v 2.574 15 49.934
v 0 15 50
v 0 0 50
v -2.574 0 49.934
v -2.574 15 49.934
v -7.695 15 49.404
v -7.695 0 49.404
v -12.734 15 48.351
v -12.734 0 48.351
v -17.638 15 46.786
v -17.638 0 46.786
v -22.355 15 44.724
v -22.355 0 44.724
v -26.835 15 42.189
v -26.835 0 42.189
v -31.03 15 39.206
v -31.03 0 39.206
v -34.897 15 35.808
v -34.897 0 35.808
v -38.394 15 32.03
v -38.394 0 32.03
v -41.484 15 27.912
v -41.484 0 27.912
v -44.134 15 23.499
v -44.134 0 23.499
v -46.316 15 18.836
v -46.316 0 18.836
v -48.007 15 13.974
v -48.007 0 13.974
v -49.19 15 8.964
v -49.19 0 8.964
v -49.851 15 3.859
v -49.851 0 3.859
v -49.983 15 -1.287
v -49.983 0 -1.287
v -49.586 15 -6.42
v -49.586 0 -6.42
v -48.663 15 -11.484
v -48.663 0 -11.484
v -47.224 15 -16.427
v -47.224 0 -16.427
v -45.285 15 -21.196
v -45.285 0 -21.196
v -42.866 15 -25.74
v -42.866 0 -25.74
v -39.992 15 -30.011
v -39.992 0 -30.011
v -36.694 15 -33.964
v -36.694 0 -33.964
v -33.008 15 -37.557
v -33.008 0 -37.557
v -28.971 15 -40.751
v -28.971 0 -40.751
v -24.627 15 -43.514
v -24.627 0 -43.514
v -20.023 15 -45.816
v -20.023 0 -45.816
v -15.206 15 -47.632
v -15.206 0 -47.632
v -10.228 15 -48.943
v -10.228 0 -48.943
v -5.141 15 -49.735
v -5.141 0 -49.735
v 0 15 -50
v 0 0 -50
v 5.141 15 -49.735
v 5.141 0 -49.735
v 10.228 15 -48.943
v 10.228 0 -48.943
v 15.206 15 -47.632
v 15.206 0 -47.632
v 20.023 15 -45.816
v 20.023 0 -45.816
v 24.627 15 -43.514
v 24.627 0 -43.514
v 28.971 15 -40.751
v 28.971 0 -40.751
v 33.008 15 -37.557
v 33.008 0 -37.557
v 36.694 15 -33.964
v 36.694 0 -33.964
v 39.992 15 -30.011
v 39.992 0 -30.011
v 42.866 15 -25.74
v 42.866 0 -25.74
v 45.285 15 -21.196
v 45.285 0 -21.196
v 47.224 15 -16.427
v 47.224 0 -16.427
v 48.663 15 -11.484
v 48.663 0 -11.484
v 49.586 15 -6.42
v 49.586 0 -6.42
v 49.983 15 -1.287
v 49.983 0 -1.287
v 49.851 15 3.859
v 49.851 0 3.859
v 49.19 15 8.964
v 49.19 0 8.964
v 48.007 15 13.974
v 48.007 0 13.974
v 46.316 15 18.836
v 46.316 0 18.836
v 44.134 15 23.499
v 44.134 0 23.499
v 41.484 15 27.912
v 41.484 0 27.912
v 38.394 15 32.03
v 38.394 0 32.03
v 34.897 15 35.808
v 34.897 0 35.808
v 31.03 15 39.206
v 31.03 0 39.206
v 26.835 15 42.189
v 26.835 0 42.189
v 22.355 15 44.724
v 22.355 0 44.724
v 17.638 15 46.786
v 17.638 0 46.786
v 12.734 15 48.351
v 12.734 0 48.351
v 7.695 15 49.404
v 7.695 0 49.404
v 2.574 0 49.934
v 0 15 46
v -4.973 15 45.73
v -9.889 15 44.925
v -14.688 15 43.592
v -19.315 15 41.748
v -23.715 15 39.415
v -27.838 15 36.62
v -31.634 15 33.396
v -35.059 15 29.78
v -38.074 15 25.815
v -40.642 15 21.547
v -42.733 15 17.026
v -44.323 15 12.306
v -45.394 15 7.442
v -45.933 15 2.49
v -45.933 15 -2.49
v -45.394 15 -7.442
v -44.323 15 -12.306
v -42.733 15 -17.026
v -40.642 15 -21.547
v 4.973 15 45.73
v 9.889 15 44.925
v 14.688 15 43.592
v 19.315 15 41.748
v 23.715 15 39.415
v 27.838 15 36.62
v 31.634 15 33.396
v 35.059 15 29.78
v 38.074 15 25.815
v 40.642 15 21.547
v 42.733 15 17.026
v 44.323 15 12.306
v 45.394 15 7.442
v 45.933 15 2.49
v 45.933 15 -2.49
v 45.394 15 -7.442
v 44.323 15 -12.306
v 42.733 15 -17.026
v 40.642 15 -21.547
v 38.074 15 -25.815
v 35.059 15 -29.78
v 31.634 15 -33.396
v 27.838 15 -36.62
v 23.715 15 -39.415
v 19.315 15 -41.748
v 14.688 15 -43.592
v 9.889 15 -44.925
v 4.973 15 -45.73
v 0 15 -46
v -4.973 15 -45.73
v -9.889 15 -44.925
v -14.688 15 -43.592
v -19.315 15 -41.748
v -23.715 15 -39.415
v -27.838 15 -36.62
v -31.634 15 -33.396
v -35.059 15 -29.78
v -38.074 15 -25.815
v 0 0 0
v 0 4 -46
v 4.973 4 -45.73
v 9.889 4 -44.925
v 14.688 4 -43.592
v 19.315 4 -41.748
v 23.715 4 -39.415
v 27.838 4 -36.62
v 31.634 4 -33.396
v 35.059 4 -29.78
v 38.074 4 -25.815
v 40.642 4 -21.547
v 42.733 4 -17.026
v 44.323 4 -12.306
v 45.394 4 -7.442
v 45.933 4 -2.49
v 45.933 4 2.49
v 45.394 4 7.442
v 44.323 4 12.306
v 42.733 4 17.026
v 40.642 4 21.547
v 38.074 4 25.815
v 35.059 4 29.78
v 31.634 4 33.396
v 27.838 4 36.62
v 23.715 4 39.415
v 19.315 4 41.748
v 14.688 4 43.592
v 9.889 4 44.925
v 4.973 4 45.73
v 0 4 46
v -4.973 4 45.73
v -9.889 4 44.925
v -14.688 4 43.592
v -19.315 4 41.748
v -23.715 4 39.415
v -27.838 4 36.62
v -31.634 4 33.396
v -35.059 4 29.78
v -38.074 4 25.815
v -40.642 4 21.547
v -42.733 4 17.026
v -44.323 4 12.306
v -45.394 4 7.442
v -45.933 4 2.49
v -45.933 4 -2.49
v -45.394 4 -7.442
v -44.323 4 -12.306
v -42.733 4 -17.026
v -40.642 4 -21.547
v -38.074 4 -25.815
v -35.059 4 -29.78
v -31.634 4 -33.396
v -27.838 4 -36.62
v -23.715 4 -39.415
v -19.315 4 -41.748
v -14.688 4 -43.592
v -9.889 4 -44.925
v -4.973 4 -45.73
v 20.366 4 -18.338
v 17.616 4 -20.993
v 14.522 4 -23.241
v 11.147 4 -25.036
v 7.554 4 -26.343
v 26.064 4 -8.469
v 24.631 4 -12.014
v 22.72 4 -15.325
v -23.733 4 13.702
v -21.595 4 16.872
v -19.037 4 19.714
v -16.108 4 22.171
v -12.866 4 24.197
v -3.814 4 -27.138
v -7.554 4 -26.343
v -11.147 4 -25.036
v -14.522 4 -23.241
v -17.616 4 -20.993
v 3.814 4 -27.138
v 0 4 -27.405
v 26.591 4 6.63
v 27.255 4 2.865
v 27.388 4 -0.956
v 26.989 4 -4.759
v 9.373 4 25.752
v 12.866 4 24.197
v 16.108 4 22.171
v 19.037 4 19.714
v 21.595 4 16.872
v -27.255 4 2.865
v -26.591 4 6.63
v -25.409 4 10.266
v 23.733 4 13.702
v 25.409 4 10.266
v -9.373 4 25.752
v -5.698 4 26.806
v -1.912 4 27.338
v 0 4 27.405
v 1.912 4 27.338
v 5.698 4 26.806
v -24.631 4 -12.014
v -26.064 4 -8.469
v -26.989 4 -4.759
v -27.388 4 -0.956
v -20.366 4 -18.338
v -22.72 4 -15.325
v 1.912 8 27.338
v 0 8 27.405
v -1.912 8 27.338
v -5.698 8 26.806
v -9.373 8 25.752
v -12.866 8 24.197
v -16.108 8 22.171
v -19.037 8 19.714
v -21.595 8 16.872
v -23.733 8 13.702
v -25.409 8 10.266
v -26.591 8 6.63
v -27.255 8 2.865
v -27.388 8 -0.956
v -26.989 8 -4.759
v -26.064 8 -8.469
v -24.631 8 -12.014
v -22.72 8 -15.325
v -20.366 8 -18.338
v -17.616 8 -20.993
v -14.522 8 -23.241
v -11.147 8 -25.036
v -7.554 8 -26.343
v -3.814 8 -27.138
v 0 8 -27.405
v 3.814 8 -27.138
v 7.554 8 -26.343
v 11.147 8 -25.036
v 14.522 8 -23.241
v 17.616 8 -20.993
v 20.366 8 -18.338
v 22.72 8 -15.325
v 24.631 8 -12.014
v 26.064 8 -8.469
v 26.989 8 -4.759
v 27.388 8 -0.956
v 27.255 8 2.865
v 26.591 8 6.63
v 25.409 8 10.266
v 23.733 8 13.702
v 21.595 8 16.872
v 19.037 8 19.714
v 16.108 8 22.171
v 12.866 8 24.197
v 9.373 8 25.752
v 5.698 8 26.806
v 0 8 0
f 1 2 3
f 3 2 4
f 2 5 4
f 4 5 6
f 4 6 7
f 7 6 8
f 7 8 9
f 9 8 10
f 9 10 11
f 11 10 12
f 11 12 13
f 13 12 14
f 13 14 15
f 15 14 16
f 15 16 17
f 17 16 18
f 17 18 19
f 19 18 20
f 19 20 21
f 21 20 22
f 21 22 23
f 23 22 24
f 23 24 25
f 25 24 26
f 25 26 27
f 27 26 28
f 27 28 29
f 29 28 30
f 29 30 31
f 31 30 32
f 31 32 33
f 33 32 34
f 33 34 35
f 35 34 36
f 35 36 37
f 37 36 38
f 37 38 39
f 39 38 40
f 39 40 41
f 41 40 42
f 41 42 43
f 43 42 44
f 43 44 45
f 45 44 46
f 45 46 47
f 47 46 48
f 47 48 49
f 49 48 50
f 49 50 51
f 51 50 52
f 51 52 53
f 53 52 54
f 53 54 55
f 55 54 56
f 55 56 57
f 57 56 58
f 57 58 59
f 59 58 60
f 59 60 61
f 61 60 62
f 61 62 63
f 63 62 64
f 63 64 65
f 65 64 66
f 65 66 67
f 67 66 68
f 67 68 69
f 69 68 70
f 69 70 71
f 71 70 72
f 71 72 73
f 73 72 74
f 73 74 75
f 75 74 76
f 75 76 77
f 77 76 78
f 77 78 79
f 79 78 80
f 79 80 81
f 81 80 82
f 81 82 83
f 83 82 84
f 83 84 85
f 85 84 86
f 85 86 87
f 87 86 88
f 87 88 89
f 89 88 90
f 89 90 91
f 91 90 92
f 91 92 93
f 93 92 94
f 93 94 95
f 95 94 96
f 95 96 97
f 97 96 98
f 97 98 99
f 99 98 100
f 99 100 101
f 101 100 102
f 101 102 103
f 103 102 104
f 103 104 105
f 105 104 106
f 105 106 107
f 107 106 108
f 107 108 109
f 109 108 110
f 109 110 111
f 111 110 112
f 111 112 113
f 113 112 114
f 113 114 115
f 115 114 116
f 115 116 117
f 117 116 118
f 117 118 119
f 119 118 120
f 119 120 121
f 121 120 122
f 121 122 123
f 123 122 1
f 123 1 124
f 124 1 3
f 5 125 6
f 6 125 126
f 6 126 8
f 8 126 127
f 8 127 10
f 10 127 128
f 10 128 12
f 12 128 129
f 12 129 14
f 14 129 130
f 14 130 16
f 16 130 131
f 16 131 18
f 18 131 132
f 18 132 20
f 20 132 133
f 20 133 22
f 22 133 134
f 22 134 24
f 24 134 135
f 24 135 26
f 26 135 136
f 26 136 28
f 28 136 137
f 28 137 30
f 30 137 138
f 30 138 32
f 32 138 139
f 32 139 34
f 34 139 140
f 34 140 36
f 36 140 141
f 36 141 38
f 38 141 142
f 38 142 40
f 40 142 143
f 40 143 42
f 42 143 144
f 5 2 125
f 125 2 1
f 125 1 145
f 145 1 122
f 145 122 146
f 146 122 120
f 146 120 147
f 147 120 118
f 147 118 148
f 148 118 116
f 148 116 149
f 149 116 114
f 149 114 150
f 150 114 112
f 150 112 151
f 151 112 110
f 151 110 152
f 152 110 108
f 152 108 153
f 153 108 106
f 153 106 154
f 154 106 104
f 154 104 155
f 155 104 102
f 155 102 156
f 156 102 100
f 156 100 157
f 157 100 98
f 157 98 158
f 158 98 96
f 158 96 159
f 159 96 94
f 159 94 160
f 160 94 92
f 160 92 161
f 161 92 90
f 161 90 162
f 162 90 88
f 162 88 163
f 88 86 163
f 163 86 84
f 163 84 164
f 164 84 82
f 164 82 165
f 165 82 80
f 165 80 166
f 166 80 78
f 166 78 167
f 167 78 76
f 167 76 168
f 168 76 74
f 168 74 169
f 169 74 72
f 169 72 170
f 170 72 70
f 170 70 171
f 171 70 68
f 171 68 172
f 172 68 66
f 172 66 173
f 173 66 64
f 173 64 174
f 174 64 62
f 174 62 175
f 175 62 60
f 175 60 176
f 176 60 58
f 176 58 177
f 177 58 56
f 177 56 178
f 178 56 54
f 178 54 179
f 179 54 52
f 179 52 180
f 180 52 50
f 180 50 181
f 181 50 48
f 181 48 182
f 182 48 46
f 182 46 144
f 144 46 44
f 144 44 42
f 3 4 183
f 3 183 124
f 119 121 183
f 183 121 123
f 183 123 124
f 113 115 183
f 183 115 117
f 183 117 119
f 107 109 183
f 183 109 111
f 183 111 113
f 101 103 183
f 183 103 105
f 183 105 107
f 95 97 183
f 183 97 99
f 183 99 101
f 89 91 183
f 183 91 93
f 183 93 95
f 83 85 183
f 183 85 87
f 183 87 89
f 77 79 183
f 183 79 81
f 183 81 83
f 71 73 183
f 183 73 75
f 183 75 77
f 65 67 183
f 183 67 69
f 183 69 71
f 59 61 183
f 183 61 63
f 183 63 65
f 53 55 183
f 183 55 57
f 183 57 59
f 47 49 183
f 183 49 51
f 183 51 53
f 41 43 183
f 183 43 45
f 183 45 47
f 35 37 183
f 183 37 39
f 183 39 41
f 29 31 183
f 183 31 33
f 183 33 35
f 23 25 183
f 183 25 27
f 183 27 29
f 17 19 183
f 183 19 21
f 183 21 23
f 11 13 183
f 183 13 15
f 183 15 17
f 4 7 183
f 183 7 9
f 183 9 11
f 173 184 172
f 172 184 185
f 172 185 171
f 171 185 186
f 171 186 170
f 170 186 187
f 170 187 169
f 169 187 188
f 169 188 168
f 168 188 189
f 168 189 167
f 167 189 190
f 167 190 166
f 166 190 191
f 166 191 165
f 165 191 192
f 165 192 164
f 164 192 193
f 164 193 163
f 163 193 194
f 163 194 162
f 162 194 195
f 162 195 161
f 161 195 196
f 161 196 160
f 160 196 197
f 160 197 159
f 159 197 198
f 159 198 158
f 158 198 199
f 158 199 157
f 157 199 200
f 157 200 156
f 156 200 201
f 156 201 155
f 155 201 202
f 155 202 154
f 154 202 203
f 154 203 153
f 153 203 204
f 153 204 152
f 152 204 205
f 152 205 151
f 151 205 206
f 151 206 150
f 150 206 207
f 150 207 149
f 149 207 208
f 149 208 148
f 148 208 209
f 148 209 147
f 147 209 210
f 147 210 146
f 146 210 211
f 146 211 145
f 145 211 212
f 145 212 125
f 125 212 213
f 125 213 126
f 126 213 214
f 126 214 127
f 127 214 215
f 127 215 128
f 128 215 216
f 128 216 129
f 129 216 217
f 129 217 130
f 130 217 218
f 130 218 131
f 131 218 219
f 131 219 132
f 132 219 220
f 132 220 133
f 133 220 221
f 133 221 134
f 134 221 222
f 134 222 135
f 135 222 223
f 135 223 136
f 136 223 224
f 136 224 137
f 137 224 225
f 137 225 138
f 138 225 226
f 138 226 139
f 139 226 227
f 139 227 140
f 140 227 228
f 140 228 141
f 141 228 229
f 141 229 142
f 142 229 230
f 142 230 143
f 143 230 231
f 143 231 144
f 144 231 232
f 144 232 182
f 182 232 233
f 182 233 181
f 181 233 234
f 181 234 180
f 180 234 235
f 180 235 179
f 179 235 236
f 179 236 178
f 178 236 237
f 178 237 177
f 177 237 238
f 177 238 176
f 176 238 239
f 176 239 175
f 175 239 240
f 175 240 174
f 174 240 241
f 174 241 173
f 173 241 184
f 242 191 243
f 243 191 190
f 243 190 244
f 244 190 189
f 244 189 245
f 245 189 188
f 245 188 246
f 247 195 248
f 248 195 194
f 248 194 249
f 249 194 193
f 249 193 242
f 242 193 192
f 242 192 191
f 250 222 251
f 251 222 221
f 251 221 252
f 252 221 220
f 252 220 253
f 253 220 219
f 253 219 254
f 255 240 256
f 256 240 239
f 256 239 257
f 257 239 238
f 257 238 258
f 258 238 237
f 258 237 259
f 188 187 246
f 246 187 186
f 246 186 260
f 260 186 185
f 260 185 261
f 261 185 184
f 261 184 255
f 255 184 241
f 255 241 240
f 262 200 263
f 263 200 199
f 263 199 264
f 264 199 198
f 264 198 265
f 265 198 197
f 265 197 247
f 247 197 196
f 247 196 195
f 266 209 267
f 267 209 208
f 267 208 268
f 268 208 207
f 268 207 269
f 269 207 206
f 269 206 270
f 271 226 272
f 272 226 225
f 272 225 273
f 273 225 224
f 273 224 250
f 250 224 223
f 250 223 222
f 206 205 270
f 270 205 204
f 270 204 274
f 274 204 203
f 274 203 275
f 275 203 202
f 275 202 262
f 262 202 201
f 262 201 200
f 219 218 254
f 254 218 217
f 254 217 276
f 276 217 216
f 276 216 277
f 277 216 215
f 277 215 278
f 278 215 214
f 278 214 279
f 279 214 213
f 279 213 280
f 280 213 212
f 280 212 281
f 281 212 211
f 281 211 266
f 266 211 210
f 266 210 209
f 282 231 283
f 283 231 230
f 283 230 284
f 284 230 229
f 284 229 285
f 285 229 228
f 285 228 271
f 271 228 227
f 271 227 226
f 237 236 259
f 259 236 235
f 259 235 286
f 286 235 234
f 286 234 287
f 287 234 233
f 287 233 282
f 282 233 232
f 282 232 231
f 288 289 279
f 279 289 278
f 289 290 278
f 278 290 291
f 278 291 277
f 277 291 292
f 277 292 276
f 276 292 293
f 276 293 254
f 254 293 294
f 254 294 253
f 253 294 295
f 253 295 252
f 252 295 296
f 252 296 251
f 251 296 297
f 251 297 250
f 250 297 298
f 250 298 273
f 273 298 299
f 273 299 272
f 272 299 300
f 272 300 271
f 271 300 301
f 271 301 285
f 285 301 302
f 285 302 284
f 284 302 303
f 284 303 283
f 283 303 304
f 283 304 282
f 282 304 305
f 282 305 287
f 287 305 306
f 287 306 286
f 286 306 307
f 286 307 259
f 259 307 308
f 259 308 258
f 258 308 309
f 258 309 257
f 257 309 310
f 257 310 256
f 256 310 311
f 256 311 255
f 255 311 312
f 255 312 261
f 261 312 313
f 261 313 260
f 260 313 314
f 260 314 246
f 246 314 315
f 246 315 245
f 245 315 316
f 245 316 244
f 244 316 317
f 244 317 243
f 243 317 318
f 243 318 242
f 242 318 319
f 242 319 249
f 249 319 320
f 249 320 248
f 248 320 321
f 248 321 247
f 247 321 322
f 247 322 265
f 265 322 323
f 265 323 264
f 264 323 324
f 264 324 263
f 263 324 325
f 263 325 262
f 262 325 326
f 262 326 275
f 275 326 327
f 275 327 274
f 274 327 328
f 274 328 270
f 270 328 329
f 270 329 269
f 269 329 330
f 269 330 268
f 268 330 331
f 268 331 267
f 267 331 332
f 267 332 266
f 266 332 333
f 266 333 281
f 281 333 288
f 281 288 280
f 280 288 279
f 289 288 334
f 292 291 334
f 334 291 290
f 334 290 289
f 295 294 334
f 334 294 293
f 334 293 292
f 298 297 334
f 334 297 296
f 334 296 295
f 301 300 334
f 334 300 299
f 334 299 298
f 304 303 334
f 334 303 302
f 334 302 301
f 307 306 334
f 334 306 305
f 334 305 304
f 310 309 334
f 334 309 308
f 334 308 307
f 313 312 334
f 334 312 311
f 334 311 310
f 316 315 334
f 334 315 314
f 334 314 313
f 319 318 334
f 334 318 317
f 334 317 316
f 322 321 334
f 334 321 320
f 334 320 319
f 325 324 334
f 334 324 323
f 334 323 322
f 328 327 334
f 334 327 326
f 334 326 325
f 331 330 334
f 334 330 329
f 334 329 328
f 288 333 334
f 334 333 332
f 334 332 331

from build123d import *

# Parameters (mm, degrees)
SKETCH1_R           = 50
BOSS_EXTRUDE2_DEPTH = 15
SHELL1_T            = -4
SKETCH3_R           = 27.405
BOSS_EXTRUDE3_DEPTH = 4


with BuildPart() as part:
    # Sketch1 → Boss-Extrude2 (new body)
    with BuildSketch(Plane(origin=(0, 0, 0), x_dir=(1, 0, 0), z_dir=(0, 1, 0))):
        with Locations(Location((0, 0, 0), (0, 0, 270))):
            Circle(SKETCH1_R)
    extrude(amount=BOSS_EXTRUDE2_DEPTH)

    # Shell1
    shell1_openings = [part.faces().sort_by_distance(p)[0] for p in [
        (0, 15, 0),
    ]]
    offset(amount=SHELL1_T, openings=shell1_openings, kind=Kind.INTERSECTION)

    # Sketch3 → Boss-Extrude3 (add)
    with BuildSketch(Plane(origin=(0, 4, 0), x_dir=(1, 0, 0), z_dir=(0, 1, 0))):
        with Locations(Location((0, 0, 0), (0, 0, 270))):
            Circle(SKETCH3_R)
    extrude(amount=BOSS_EXTRUDE3_DEPTH)


solid = part.part
